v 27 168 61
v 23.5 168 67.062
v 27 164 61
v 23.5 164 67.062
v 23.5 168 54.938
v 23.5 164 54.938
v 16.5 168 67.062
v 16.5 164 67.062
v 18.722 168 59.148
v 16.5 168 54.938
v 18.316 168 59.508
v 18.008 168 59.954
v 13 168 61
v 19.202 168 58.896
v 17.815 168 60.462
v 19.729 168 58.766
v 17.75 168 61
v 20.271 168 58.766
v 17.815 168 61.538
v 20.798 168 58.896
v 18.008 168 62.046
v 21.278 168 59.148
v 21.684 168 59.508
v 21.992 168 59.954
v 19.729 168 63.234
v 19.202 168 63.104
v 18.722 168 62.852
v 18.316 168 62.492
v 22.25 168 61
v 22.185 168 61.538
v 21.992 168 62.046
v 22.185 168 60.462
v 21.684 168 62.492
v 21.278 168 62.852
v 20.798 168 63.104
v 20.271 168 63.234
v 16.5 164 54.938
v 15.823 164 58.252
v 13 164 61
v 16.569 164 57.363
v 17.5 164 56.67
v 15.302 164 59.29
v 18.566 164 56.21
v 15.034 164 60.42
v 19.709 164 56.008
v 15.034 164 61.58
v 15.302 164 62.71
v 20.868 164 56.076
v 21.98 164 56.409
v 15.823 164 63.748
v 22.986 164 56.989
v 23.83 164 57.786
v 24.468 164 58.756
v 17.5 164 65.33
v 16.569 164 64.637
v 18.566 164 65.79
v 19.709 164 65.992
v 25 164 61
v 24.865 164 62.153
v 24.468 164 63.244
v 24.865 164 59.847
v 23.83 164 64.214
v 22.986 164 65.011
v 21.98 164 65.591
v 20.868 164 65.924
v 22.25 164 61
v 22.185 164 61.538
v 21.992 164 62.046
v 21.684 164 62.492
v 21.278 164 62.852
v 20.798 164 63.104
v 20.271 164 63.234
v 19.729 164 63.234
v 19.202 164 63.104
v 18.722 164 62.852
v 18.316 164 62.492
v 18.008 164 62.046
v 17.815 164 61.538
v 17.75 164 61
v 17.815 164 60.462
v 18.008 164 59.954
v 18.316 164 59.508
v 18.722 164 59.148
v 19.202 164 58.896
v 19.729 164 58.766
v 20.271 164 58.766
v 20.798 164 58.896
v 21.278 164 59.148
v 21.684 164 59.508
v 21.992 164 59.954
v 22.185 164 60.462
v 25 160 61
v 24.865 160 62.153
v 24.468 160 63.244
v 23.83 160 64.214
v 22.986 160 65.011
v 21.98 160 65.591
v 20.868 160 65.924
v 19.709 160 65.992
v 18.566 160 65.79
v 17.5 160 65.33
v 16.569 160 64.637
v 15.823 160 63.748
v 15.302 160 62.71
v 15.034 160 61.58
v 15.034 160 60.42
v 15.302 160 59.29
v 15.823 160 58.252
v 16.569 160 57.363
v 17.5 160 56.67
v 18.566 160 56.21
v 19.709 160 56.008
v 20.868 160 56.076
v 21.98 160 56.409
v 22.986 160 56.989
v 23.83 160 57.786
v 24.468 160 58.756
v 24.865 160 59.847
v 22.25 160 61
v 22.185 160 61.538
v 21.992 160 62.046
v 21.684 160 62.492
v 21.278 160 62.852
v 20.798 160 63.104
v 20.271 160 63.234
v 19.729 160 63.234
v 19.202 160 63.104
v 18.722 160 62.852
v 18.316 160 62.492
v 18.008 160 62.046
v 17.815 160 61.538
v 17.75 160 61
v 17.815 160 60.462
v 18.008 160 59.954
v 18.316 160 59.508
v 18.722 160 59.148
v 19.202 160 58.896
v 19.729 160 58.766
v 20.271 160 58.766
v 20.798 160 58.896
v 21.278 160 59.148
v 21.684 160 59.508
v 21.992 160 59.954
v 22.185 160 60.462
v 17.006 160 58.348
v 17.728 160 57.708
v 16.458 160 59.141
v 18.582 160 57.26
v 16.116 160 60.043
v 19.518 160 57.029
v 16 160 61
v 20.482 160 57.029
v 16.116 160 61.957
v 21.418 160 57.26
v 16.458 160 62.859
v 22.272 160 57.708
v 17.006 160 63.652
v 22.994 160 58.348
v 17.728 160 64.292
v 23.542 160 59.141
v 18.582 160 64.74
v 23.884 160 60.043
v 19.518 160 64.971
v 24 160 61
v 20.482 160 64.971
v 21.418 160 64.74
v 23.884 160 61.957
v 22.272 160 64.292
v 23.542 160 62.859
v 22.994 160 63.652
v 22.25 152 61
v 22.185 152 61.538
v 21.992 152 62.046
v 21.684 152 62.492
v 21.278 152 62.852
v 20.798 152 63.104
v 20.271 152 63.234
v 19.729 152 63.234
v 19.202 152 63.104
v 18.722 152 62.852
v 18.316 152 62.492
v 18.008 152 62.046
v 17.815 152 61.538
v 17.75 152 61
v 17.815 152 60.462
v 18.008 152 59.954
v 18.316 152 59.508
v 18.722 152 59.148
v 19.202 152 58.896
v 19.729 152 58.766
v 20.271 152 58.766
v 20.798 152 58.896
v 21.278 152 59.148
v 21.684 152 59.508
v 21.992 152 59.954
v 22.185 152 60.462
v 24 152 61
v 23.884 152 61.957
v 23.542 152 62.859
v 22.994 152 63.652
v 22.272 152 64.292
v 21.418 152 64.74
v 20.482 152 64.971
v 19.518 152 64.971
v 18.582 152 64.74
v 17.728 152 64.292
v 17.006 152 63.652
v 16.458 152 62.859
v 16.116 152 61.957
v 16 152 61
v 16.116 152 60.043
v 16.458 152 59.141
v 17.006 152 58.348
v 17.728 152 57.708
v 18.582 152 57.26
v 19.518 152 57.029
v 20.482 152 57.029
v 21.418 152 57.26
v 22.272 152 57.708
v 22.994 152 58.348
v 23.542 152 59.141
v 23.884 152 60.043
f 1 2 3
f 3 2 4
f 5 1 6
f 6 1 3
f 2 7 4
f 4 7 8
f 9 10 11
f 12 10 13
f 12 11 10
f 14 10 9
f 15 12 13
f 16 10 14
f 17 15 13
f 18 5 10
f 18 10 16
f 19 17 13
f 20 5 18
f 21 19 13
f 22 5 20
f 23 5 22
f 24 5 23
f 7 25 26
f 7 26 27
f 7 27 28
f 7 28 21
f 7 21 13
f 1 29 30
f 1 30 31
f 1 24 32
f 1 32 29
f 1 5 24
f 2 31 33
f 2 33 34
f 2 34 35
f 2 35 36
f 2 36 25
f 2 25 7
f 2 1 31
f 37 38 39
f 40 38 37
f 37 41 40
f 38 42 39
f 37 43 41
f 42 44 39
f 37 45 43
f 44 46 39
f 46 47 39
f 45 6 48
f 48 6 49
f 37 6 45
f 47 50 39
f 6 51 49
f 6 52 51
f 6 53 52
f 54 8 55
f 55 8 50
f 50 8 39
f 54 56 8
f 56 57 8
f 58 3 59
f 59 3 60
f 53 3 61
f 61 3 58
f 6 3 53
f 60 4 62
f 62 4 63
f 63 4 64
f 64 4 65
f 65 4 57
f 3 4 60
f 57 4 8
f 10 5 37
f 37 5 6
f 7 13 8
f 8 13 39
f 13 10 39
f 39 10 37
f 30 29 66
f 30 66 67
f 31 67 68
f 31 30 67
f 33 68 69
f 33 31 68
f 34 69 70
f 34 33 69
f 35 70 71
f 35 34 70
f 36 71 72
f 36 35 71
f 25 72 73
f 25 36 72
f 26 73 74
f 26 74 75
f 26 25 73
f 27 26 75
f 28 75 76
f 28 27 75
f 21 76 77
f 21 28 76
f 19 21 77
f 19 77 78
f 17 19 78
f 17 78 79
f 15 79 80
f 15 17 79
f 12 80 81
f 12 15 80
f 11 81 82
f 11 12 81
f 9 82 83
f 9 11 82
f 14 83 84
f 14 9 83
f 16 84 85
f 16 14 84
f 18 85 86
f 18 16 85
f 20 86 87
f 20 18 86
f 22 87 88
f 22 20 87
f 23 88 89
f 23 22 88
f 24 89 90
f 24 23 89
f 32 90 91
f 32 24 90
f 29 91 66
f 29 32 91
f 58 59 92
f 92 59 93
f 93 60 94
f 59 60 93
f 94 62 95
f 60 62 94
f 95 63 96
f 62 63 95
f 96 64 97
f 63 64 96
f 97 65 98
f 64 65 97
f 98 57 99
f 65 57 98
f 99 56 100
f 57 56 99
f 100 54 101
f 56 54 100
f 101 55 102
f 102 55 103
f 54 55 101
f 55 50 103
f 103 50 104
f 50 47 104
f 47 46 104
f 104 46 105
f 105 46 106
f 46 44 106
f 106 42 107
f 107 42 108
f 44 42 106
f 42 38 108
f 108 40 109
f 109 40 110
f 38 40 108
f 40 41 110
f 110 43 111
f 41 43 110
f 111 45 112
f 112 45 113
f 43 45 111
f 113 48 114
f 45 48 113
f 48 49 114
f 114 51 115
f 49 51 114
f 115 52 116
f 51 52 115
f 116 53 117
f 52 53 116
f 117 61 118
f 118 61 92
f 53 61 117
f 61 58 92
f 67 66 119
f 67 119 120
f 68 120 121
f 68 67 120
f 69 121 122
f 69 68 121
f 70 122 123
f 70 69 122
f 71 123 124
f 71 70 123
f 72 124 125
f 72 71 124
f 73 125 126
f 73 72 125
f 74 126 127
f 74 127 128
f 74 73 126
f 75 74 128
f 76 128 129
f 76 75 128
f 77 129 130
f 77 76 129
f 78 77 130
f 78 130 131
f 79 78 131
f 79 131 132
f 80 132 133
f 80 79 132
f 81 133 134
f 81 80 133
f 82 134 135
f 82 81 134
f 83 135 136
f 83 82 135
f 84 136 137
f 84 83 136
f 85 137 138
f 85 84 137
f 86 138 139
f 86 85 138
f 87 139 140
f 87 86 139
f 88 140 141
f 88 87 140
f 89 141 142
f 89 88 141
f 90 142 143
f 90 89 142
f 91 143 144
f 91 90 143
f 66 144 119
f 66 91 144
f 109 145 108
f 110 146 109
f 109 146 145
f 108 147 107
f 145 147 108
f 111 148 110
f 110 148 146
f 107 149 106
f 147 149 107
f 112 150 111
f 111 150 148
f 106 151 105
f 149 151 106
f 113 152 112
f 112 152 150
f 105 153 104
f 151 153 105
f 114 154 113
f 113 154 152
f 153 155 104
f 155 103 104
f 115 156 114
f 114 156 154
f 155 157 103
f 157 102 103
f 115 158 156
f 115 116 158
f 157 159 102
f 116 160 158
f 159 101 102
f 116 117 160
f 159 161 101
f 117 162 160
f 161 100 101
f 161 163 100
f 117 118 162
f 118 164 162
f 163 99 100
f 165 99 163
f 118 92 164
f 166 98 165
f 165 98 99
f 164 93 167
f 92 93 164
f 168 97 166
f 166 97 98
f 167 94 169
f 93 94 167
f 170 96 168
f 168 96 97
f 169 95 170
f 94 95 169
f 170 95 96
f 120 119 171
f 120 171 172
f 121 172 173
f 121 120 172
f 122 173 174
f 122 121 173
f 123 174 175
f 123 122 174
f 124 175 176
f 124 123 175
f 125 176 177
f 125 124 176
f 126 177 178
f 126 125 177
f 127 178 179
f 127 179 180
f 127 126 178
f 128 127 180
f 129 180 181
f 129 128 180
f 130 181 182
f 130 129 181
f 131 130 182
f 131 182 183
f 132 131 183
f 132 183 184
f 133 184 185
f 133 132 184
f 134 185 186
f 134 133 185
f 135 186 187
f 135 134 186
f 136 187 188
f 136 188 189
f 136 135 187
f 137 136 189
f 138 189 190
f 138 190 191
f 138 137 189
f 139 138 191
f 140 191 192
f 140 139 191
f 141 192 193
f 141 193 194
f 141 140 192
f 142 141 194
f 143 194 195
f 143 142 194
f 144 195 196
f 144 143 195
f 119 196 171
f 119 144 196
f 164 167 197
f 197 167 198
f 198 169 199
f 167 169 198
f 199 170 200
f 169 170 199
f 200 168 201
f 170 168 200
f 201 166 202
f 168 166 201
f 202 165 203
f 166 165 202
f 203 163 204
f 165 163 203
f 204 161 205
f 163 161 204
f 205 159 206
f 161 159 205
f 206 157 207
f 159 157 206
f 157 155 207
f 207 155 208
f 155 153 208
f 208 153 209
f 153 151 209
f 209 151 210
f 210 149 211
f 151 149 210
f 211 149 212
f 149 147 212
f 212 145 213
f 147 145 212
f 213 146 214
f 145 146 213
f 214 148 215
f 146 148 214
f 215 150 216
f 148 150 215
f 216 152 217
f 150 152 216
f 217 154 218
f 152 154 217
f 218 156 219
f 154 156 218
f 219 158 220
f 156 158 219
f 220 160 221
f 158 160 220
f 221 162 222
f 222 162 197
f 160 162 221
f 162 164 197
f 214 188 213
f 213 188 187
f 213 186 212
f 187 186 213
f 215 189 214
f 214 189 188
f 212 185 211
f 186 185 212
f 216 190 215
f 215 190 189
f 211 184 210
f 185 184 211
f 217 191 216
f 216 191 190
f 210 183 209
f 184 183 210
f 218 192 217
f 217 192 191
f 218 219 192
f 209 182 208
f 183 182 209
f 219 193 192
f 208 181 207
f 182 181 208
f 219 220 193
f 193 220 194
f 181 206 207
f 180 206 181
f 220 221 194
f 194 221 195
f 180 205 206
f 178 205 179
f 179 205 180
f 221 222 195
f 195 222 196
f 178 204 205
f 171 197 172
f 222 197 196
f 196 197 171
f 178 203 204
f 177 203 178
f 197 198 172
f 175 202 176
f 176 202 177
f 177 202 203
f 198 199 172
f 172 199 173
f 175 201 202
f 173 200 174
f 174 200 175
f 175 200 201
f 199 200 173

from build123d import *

# Parameters (mm, degrees)
SKETCH_R      = 2.25
PAD_DEPTH     = 4
SKETCH001_R   = 5
SKETCH001_R_2 = 2.25
PAD001_DEPTH  = 4
SKETCH004_R   = 4
SKETCH004_R_2 = 2.25
PAD004_DEPTH  = 8


with BuildPart() as part:
    # Sketch → Pad (new body)
    with BuildSketch(Plane.XZ):
        Polygon((7, 0), (3.5, 6.062178), (-3.5, 6.062178), (-7, 0), (-3.5, -6.062178), (3.5, -6.062178), align=None)
        Circle(SKETCH_R, mode=Mode.SUBTRACT)
    extrude(amount=PAD_DEPTH)

    # Sketch001 (on Face9 of Pad) → Pad001 (join)
    with BuildSketch(Plane.XZ.offset(4)):
        Circle(SKETCH001_R)
        Circle(SKETCH001_R_2, mode=Mode.SUBTRACT)
    extrude(amount=PAD001_DEPTH)

    # Sketch004 (on Face12 of Pad001) → Pad004 (join)
    with BuildSketch(Plane.XZ.offset(8)):
        Circle(SKETCH004_R)
        Circle(SKETCH004_R_2, mode=Mode.SUBTRACT)
    extrude(amount=PAD004_DEPTH)


with BuildPart() as part_1:
    # Body placement: moved
    add(part.part.moved(Location((20, 168, 61))))


solid = part_1.part
